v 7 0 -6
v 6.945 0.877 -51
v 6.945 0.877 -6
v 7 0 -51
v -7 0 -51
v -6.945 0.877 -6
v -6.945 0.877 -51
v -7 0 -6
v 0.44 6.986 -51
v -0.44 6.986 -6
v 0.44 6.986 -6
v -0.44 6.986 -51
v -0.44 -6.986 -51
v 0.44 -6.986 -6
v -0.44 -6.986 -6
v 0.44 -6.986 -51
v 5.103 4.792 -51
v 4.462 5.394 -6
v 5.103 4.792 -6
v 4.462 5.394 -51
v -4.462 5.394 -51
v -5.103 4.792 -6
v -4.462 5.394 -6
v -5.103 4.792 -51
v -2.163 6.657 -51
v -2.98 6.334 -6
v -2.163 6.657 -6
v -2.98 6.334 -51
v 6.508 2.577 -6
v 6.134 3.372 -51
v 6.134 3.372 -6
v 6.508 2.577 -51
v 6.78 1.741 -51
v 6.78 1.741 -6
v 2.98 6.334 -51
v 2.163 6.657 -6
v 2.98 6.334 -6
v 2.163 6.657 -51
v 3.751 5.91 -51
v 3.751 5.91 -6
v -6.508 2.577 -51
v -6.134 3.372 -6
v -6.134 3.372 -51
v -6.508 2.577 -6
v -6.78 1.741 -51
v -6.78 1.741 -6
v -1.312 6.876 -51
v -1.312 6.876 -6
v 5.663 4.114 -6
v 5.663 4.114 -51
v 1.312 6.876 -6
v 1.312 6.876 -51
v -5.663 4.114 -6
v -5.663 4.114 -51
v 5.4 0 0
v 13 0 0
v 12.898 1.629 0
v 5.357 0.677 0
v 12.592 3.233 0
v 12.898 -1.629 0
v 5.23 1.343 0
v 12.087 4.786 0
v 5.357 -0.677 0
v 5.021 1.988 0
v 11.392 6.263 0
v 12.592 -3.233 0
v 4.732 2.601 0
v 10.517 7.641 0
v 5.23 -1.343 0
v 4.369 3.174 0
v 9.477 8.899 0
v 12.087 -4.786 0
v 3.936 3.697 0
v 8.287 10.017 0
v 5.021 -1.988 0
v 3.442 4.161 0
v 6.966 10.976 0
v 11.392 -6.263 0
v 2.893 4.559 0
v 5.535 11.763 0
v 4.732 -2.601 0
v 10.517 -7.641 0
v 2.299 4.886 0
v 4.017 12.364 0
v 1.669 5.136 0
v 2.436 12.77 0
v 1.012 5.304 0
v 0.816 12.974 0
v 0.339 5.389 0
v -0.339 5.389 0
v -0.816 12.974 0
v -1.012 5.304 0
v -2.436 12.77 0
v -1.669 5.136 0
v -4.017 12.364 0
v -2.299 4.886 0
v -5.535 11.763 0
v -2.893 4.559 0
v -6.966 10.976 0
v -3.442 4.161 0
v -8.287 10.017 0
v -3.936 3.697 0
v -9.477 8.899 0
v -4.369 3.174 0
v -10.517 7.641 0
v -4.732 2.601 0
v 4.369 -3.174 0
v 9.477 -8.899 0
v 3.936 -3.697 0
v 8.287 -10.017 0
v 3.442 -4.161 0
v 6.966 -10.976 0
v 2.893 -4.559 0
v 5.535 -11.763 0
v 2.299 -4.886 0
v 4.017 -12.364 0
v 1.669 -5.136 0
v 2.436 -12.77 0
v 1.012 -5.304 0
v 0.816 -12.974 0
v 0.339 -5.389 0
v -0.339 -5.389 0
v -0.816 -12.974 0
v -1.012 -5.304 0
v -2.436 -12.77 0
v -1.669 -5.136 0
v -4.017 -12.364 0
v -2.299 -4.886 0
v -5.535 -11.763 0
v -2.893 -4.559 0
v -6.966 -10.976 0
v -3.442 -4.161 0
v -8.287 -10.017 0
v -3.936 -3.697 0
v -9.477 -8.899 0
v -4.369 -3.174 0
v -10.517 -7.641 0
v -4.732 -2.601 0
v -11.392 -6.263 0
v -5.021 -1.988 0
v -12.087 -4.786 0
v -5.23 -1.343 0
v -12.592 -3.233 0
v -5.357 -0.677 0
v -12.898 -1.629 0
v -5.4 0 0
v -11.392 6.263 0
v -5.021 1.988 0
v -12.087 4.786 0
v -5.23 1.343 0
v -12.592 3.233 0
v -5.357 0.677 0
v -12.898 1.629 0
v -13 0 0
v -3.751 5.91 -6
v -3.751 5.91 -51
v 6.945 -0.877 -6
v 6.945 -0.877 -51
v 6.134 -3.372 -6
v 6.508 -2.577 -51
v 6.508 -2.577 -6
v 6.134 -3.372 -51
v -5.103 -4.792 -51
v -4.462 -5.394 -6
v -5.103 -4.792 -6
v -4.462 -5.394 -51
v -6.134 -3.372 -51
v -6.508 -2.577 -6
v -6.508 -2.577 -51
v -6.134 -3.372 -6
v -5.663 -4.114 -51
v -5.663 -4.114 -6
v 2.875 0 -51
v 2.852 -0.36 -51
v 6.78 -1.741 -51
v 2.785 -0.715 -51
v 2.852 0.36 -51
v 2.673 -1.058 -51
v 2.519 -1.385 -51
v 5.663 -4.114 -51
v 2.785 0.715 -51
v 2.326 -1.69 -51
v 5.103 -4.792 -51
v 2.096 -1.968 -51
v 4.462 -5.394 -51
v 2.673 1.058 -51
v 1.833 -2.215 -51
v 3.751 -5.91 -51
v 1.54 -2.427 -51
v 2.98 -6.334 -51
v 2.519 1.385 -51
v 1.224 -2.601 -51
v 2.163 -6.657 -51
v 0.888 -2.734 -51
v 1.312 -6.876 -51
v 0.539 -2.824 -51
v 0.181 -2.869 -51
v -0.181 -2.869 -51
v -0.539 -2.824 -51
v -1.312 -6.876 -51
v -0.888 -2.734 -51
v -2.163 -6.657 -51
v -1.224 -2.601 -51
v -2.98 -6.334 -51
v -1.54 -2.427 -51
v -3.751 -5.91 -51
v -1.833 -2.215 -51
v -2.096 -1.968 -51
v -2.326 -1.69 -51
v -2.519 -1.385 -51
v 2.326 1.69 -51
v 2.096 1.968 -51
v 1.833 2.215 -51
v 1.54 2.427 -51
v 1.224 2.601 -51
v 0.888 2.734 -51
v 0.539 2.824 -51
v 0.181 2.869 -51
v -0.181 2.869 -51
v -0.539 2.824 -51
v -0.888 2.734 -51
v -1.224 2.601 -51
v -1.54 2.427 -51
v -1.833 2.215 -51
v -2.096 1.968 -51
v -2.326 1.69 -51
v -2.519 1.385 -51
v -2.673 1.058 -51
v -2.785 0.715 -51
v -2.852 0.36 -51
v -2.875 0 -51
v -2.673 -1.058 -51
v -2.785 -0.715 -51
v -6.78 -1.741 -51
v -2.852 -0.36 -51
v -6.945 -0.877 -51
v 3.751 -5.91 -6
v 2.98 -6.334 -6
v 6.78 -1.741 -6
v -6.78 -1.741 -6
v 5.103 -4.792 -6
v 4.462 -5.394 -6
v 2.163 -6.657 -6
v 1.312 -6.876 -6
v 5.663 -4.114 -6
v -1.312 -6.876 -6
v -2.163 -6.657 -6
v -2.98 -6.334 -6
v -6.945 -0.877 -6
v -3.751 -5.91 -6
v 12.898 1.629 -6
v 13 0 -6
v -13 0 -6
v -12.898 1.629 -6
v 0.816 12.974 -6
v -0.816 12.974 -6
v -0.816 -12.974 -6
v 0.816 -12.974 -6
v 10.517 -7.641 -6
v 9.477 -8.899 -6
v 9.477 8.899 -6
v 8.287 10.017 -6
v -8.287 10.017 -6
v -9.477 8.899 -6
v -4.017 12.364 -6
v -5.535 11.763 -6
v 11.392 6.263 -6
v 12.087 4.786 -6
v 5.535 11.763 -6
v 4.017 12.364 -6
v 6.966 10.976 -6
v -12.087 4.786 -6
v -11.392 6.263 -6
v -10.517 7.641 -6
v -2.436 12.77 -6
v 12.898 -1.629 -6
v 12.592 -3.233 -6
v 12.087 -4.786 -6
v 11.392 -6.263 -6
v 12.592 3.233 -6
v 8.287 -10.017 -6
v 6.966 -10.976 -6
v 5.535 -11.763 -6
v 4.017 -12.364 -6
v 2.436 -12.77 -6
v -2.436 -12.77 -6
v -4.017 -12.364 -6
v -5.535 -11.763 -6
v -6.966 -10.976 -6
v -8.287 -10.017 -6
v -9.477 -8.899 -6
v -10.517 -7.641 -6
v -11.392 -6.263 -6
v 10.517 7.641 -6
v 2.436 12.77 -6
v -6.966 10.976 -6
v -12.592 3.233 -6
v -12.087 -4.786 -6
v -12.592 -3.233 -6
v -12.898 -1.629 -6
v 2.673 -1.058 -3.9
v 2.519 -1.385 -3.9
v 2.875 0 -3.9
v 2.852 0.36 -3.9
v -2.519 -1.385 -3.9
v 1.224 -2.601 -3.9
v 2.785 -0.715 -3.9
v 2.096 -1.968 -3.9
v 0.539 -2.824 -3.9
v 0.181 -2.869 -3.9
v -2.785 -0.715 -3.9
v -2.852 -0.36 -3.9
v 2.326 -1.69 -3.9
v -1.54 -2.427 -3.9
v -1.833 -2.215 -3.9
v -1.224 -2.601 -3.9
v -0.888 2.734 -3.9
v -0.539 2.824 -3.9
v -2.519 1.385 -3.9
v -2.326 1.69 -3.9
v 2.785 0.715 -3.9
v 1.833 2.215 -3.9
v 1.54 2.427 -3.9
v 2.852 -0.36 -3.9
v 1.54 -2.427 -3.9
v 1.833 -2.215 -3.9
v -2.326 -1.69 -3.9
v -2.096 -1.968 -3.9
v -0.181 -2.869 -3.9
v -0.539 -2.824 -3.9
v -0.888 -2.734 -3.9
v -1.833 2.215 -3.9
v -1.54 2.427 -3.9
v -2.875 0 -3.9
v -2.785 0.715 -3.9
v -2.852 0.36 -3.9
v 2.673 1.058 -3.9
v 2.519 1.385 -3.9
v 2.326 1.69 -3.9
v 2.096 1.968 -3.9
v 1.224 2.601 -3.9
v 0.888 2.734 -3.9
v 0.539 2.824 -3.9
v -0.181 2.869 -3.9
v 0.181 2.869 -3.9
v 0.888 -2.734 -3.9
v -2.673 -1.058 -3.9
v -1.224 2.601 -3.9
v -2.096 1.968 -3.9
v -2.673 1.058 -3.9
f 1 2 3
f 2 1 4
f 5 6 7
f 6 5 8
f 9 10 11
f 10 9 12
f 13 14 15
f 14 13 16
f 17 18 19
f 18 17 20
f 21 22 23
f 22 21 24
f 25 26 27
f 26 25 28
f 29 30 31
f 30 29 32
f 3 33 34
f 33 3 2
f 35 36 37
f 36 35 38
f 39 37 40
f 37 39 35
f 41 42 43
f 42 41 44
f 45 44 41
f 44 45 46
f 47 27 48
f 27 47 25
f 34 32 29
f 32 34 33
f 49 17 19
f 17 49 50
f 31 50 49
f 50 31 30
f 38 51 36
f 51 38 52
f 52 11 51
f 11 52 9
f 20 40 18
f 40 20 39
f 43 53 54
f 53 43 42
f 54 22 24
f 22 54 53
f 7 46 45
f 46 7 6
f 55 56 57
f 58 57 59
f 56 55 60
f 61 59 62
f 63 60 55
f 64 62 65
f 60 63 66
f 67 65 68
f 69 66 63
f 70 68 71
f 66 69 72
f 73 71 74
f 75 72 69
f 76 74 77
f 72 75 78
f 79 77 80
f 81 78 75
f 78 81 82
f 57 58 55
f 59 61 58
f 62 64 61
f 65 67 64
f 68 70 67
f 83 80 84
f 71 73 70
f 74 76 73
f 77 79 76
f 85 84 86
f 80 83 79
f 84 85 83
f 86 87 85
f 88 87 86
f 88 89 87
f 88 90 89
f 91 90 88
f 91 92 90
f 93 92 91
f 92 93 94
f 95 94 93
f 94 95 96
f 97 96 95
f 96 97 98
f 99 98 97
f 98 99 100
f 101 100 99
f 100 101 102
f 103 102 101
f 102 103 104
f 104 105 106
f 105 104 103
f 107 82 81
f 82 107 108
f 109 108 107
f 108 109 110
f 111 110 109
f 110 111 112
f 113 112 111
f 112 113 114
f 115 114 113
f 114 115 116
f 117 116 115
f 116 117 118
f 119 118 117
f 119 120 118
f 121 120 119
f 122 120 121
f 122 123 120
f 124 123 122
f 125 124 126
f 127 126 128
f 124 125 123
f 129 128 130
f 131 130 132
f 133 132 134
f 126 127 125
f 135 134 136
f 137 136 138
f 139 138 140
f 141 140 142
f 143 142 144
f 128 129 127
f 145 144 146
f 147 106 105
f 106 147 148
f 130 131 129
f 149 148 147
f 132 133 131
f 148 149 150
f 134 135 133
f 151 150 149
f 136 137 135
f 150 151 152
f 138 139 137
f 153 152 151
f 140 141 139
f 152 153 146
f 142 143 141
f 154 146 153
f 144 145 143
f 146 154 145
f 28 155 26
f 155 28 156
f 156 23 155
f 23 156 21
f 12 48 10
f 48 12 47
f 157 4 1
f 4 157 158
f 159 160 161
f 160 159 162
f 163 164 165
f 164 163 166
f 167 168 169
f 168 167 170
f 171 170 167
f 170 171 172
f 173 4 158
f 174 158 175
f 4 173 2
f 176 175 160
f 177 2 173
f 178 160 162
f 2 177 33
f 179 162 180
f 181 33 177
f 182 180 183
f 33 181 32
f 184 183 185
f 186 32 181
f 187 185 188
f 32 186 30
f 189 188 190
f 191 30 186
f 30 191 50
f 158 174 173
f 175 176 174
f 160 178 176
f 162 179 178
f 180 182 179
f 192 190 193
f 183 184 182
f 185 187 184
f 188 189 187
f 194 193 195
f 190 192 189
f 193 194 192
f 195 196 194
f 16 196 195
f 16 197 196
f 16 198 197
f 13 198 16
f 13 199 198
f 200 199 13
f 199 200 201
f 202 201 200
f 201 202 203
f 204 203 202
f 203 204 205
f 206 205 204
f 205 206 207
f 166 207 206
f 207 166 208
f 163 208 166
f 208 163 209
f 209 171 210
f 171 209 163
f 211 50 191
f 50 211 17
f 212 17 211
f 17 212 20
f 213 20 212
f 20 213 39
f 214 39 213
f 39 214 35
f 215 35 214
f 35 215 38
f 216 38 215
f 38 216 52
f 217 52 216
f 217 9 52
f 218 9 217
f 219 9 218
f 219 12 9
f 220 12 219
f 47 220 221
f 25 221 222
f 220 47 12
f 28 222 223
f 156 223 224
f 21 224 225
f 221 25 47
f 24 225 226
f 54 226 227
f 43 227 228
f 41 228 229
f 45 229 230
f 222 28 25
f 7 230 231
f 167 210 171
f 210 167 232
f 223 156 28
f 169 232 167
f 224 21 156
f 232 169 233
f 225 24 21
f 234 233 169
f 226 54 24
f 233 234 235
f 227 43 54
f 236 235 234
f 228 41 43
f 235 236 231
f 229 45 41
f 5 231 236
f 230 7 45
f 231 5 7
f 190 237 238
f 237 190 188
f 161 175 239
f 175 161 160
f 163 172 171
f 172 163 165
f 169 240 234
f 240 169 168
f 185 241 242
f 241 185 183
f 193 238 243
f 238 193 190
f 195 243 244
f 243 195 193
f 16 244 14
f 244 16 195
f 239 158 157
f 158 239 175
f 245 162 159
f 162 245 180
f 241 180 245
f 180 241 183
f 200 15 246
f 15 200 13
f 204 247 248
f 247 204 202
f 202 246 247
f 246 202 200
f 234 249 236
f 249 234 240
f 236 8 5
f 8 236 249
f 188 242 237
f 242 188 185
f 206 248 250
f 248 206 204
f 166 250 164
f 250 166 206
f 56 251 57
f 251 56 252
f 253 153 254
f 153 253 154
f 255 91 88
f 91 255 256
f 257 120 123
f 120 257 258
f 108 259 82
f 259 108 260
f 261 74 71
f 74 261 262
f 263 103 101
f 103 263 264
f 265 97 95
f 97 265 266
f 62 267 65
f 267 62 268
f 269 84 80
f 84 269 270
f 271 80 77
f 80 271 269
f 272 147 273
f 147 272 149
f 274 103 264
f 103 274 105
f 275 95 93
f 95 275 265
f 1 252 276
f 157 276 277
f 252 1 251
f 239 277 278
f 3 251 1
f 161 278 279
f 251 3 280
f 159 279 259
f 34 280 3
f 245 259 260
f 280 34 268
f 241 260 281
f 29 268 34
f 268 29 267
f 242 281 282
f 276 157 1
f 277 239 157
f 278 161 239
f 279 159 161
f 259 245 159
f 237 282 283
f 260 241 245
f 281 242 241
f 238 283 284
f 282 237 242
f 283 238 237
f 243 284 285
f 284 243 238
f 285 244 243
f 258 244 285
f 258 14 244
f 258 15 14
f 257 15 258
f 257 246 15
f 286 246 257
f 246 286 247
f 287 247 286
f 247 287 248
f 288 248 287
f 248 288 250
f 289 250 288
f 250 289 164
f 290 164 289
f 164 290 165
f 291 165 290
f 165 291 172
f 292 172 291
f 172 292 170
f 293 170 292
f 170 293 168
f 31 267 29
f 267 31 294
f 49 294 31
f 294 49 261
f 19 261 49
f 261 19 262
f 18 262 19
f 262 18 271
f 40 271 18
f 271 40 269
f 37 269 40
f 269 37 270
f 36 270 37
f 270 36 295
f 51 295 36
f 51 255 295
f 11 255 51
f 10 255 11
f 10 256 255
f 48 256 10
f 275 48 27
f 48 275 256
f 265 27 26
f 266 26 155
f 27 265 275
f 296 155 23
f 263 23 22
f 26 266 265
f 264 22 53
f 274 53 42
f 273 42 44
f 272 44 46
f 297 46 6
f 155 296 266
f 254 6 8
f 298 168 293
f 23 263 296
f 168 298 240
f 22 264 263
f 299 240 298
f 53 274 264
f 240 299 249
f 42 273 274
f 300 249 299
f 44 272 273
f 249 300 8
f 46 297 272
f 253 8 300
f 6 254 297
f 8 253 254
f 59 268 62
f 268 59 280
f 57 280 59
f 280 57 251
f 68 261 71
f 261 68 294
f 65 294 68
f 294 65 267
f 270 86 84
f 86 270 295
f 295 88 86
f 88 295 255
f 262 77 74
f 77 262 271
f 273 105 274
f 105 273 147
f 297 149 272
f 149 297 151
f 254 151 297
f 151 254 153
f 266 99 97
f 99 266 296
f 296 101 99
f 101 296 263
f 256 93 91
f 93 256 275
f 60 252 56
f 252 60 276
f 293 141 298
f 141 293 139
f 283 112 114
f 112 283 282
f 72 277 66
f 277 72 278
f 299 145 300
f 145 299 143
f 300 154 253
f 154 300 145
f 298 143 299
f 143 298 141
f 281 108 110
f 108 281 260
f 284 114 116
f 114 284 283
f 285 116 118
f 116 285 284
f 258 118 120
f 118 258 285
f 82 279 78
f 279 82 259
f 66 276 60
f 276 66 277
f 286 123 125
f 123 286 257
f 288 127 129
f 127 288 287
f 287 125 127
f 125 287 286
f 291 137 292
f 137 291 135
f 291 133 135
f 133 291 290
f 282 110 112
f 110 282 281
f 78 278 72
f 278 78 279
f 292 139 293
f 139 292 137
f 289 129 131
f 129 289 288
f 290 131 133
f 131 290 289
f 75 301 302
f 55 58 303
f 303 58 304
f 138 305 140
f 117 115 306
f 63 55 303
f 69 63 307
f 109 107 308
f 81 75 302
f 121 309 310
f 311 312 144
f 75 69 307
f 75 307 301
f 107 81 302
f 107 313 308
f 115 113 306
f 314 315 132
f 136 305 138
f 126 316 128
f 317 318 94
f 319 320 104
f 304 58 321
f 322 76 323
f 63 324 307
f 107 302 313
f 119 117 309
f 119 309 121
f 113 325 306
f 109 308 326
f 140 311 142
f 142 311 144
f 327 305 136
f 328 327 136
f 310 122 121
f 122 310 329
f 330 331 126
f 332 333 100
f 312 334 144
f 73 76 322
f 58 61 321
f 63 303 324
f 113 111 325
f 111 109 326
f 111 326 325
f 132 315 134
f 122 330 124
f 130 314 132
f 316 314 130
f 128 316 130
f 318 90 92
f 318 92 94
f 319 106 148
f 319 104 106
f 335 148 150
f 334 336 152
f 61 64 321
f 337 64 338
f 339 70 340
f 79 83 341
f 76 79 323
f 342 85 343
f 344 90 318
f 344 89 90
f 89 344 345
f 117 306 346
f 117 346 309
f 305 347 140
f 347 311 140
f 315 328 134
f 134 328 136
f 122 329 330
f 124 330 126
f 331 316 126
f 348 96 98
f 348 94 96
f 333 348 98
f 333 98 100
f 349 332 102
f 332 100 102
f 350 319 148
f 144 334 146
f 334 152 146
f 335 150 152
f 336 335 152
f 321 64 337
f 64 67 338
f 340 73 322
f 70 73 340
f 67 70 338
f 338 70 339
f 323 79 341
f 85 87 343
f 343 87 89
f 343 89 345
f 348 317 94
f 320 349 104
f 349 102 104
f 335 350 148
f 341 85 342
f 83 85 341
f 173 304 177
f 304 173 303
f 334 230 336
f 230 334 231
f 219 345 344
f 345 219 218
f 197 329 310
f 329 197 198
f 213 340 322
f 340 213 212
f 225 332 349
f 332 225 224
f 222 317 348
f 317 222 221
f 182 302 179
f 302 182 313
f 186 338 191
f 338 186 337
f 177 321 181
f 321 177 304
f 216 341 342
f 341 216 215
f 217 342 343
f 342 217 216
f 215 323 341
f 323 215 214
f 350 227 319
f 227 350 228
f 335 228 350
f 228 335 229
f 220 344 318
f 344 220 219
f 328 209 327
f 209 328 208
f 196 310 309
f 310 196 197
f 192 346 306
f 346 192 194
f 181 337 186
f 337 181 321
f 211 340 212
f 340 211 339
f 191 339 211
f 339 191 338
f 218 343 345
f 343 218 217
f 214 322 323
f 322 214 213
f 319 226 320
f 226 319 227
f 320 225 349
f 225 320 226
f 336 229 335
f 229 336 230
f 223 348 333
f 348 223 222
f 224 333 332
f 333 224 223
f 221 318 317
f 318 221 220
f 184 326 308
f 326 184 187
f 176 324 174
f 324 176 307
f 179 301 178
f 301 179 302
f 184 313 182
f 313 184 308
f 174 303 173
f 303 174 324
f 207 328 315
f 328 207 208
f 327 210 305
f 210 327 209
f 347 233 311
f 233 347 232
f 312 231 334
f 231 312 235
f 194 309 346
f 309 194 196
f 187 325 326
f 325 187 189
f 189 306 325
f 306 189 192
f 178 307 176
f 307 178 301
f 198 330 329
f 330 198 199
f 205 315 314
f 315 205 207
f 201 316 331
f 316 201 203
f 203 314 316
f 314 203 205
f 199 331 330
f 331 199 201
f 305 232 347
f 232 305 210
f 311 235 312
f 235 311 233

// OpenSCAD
$fn = 50;


difference() {
	union() {
		translate(v = [0, 0, -51.0000000000]) {
			cylinder(h = 51, r = 7.0000000000);
		}
		translate(v = [0, 0, -6.0000000000]) {
			cylinder(h = 6, r = 13.0000000000);
		}
	}
	union() {
		translate(v = [0, 0, 0]) {
			rotate(a = [0, 0, 0]) {
				difference() {
					union() {
						#translate(v = [0, 0, -51.0000000000]) {
							cylinder(h = 51, r = 2.6000000000);
						}
						#translate(v = [0, 0, -3.9000000000]) {
							cylinder(h = 3.9000000000, r1 = 2.8750000000, r2 = 5.4000000000);
						}
						#translate(v = [0, 0, -51.0000000000]) {
							cylinder(h = 51, r = 2.8750000000);
						}
						#translate(v = [0, 0, -51.0000000000]) {
							cylinder(h = 51, r = 2.6000000000);
						}
					}
					union();
				}
			}
		}
	}
}
